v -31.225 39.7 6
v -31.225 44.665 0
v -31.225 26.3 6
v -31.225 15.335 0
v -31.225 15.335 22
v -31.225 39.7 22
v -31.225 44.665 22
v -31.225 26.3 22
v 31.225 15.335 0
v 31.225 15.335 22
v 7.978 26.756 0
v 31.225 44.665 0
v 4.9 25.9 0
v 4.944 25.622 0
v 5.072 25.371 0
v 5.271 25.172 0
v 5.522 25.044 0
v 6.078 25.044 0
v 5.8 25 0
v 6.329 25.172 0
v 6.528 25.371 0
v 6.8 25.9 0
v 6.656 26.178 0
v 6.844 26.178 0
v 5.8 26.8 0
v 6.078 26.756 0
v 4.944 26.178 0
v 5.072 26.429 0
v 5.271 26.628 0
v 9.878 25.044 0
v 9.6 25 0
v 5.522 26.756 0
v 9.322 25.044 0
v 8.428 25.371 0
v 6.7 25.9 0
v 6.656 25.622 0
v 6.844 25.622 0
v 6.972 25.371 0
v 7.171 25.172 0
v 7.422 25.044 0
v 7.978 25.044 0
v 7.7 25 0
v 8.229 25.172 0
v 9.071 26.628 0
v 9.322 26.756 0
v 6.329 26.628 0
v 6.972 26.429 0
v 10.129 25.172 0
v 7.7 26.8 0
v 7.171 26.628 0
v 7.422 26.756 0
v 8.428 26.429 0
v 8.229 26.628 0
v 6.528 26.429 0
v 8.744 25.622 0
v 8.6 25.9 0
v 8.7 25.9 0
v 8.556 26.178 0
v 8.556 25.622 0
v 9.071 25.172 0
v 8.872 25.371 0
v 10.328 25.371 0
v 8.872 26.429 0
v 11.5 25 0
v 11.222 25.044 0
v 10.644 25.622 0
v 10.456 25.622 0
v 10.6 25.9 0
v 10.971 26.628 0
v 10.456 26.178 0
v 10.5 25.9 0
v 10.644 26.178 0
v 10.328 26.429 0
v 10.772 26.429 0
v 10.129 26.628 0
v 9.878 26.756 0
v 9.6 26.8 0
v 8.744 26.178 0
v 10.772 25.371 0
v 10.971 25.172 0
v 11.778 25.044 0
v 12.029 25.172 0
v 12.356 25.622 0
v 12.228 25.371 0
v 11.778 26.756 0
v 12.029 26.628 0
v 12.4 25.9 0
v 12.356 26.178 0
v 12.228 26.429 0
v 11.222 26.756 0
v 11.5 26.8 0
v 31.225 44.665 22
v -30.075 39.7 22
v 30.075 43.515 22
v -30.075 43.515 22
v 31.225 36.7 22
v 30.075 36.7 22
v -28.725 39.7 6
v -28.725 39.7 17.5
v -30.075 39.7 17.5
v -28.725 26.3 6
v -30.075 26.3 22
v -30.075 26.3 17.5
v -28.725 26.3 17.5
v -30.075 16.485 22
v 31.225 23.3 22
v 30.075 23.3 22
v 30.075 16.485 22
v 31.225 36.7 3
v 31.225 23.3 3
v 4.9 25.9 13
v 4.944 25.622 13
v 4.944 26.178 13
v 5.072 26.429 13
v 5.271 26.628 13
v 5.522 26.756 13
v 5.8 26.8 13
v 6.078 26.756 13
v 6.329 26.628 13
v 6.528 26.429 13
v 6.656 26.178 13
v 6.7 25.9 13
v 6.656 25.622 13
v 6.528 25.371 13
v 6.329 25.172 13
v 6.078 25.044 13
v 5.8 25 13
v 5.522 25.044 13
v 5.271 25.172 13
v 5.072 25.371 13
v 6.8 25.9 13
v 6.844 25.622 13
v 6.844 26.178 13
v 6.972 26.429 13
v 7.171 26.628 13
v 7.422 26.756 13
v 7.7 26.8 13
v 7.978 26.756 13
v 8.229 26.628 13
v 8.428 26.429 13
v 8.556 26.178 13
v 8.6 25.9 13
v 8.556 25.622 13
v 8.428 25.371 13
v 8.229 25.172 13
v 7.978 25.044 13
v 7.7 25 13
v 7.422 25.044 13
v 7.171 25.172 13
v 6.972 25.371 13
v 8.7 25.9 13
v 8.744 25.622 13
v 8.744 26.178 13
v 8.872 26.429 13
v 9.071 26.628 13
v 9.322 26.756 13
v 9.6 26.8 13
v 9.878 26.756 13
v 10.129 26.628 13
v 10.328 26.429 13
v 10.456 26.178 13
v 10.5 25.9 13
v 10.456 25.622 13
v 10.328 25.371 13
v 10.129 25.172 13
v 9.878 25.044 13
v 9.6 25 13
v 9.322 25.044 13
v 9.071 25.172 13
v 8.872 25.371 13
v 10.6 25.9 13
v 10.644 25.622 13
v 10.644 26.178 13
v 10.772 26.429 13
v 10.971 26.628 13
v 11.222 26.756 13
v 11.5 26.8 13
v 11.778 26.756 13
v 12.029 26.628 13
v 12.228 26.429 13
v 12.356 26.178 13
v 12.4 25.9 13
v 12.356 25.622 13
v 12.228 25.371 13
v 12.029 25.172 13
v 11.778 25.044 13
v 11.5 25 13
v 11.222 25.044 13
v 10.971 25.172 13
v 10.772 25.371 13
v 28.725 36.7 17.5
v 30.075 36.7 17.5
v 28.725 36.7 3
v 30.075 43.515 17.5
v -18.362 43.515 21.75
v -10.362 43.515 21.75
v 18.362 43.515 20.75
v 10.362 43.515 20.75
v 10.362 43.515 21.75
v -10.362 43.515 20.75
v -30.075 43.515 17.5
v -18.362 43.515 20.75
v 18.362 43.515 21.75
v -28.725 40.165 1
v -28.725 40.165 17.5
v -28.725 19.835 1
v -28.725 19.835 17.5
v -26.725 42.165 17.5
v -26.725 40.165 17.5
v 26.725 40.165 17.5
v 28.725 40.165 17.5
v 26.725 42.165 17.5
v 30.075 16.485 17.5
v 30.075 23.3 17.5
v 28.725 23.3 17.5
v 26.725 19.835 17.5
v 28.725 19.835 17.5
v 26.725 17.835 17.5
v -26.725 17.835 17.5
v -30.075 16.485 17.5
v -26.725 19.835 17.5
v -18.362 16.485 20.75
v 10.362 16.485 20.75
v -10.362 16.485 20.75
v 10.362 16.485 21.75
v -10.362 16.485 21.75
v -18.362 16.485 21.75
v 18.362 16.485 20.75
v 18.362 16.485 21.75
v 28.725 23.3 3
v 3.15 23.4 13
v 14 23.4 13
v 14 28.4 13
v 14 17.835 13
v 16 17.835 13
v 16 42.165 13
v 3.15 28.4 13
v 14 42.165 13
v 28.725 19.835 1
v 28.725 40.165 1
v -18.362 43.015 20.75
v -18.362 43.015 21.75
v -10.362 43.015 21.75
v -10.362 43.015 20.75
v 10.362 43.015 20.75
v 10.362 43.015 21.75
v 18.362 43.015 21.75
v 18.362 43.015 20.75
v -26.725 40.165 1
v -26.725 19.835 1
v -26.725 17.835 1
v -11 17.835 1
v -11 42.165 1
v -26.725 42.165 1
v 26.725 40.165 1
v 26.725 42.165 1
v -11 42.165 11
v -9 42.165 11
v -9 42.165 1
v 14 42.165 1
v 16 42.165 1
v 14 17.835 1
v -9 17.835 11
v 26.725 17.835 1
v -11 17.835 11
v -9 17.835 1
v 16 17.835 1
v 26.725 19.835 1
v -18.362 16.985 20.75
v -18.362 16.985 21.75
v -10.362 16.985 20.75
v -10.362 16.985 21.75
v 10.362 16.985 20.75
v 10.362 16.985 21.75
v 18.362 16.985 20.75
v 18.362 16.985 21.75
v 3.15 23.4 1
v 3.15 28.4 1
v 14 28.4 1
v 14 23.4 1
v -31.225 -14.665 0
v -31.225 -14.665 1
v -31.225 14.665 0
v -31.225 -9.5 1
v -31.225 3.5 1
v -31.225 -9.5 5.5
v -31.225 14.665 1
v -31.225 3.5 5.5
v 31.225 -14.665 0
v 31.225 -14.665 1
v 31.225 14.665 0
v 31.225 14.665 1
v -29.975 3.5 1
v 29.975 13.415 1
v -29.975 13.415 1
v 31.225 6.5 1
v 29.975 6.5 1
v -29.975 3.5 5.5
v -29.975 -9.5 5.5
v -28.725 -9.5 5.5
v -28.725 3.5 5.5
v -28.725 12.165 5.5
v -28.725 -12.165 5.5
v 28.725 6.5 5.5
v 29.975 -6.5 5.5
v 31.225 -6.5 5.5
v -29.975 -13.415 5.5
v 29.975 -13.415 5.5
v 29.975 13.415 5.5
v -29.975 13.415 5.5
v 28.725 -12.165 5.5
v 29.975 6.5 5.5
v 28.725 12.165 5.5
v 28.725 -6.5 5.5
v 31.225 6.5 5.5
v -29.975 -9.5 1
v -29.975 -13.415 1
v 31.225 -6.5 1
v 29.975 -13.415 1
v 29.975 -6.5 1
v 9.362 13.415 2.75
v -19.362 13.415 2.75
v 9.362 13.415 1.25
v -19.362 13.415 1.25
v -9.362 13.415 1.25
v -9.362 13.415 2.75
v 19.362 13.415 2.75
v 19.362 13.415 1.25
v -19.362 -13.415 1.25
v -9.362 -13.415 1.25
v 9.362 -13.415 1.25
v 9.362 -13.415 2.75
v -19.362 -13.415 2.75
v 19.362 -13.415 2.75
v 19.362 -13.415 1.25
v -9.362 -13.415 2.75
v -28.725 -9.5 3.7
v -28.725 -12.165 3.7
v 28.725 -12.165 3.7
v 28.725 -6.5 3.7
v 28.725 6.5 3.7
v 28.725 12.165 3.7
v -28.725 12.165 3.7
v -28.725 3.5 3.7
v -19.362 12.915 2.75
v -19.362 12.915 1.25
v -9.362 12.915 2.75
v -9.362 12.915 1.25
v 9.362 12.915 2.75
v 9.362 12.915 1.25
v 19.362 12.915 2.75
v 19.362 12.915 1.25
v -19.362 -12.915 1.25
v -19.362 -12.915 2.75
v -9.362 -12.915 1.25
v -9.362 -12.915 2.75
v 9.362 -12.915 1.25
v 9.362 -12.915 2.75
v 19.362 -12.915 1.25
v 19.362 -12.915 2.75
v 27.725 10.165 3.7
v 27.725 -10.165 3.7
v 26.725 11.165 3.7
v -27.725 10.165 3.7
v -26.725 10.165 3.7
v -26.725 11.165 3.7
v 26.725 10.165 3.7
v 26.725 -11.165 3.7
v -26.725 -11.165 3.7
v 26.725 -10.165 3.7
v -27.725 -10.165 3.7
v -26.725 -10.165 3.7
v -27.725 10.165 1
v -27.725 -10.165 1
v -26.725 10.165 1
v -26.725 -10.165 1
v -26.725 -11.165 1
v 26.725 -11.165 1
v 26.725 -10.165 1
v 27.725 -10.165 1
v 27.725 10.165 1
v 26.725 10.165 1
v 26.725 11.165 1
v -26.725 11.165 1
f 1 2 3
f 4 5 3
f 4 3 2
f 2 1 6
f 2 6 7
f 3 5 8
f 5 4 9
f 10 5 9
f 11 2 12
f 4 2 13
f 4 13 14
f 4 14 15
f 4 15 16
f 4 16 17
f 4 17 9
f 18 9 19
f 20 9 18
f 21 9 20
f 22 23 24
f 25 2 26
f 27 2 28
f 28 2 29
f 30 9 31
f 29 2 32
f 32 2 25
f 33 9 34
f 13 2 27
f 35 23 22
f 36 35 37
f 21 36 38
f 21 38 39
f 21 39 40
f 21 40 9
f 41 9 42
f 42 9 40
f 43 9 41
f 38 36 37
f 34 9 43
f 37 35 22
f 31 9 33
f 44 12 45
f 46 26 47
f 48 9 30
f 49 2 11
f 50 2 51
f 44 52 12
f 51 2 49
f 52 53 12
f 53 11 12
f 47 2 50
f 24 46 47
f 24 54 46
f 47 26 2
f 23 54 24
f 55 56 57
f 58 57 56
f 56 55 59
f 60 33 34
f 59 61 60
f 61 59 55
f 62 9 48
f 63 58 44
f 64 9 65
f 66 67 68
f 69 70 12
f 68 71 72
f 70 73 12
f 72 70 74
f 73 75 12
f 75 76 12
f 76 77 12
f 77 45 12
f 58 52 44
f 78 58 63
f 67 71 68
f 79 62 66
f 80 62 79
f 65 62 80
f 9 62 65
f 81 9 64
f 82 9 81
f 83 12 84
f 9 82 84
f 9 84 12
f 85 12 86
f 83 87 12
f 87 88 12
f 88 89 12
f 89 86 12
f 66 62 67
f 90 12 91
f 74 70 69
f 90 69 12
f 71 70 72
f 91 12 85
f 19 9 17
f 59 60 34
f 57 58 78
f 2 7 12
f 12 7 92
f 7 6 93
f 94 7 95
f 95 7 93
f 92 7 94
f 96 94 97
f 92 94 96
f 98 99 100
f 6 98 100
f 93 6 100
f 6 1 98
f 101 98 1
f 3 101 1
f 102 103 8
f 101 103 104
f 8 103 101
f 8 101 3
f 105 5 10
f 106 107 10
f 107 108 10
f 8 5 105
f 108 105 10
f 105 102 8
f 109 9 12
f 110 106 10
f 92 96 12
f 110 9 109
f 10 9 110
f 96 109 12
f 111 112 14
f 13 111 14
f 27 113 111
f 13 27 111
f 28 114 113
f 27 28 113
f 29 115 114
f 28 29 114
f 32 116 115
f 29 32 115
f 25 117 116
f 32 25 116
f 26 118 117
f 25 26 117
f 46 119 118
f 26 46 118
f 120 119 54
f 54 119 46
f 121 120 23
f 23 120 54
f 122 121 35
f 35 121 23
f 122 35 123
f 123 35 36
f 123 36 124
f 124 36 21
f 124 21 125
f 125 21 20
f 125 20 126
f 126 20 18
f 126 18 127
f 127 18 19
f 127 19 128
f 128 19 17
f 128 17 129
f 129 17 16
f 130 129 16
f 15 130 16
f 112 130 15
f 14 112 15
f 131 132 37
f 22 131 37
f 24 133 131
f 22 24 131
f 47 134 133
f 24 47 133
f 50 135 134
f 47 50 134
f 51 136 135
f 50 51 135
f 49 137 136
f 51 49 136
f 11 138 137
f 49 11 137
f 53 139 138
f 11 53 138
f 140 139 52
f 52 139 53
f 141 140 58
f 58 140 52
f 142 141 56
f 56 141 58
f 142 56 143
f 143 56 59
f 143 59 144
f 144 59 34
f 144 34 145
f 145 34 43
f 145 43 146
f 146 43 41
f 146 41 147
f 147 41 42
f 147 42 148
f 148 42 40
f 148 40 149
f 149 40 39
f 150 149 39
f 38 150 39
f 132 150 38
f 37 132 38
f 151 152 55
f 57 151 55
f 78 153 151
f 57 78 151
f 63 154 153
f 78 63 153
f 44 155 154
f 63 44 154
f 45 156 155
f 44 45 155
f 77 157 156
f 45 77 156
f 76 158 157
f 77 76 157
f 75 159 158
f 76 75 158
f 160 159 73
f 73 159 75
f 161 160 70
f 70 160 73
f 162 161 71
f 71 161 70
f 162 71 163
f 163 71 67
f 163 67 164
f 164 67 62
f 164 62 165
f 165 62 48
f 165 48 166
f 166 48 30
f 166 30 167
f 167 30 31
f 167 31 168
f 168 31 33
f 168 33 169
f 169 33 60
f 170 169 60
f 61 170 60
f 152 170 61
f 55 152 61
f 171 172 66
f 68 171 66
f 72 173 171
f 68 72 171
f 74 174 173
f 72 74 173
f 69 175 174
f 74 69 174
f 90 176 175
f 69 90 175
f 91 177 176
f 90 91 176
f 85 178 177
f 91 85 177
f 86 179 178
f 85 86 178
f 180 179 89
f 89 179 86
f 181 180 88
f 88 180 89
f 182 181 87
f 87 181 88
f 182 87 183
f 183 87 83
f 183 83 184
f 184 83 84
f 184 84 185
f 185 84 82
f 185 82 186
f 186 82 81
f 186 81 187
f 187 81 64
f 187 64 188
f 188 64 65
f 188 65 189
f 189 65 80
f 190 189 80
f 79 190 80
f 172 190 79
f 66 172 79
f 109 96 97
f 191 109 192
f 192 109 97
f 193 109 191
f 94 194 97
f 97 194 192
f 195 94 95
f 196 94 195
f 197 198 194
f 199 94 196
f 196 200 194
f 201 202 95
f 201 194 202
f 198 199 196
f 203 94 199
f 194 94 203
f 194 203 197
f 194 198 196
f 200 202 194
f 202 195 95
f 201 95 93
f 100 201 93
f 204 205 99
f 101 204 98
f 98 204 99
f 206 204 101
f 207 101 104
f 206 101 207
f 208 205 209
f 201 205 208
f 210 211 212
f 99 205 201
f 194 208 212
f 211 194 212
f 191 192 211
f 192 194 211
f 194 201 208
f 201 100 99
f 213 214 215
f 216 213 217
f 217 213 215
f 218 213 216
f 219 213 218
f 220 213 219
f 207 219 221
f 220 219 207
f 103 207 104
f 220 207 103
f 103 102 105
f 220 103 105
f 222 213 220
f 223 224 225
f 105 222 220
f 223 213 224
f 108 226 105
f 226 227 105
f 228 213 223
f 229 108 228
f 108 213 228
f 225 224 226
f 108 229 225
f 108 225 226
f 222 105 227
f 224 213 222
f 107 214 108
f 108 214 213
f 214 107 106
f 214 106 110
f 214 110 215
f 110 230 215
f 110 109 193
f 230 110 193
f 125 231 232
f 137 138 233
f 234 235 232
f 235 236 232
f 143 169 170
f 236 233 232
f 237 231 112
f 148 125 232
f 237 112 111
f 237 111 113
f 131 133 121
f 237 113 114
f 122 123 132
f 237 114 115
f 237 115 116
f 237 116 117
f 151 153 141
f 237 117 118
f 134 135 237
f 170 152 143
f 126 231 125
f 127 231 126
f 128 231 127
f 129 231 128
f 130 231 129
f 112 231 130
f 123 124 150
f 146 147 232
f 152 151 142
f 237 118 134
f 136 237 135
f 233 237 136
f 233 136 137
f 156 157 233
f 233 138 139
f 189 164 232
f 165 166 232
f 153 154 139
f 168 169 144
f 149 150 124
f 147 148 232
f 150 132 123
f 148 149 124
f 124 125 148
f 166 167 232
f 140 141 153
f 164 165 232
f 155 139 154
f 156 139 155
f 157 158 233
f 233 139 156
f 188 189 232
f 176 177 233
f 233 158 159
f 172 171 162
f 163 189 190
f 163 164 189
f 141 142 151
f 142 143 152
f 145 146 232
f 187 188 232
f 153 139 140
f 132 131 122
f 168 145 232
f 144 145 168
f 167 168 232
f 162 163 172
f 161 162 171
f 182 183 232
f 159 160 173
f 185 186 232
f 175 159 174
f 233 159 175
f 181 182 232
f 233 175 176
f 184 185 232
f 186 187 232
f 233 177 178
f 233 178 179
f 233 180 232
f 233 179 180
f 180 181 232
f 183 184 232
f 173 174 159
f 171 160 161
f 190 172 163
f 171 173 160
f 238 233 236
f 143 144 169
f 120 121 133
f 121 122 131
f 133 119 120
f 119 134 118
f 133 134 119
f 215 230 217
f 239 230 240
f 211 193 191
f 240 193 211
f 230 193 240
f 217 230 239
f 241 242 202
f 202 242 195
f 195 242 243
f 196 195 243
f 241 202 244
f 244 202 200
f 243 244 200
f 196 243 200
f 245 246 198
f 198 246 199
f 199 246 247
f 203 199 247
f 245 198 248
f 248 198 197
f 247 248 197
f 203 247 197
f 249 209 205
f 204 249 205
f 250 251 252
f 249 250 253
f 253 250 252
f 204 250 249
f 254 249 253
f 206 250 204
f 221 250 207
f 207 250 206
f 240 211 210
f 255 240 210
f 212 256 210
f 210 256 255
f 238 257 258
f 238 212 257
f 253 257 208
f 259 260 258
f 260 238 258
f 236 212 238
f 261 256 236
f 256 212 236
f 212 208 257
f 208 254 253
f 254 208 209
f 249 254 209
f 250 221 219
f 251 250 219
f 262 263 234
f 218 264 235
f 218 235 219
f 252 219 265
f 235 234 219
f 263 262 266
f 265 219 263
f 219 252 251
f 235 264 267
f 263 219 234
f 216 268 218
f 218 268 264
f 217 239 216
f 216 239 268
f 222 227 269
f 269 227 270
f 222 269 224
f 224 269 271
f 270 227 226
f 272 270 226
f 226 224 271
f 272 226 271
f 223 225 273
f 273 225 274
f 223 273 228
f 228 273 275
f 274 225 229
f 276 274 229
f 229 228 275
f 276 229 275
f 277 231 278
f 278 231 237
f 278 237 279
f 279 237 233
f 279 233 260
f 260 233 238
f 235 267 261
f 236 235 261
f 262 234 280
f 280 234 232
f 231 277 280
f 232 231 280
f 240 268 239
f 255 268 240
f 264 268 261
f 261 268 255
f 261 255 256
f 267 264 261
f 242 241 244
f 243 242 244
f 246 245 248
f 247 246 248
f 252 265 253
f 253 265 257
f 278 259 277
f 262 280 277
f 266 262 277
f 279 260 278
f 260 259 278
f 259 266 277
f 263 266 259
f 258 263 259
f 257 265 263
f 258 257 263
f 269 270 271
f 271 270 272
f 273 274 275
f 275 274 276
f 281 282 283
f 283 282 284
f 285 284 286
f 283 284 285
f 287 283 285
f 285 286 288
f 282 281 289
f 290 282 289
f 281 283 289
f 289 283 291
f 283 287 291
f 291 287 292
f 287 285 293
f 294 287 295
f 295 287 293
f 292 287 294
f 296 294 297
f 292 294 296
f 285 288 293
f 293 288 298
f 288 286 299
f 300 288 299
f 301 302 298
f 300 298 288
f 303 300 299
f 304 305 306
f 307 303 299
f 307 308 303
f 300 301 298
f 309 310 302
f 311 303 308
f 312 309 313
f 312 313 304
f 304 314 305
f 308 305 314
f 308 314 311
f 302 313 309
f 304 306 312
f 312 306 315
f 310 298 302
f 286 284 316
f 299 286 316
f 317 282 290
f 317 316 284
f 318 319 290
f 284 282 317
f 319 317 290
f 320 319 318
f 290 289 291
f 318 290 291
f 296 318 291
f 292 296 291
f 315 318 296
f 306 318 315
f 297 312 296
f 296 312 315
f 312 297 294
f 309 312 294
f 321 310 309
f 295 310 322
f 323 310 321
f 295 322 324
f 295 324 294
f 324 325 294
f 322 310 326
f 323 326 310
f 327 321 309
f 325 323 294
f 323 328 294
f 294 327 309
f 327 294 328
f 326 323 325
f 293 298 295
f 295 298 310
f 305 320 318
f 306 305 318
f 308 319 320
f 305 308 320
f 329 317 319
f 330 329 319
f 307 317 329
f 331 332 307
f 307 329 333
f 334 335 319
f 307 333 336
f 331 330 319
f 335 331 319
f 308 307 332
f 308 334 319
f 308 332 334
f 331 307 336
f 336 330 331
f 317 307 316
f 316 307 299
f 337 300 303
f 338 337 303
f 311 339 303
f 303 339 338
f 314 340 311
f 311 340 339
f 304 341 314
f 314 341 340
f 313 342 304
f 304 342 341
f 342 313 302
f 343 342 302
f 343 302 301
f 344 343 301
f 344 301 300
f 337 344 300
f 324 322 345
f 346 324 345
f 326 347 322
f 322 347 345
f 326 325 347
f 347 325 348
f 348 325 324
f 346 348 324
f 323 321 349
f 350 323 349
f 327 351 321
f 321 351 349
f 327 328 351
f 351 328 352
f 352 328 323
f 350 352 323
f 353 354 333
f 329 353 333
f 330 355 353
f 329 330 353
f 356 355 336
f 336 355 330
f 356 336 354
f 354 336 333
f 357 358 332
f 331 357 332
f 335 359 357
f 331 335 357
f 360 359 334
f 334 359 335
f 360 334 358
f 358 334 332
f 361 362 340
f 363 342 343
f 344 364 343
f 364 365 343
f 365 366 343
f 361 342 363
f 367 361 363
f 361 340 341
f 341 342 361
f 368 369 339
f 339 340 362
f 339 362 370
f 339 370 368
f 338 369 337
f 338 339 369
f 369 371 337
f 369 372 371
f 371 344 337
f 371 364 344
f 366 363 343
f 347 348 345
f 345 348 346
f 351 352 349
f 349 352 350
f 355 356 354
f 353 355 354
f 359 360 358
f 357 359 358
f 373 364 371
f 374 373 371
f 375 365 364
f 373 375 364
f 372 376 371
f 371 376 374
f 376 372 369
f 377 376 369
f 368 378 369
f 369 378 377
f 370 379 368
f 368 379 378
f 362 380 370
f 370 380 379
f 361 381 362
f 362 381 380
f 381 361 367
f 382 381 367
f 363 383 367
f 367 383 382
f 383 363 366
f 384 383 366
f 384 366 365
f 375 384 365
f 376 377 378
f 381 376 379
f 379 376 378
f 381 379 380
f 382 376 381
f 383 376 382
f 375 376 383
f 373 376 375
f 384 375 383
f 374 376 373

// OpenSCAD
/*
 * case.scad -- case for the guiderport hardware
 *
 * (c) 2015 Prof Dr Andreas Mueller, Hochschule Rapperswil
 */

l = 57.15 + 0.3;
w = 24.13 + 0.2;
h = 22;
wall = 2.5;
L = l + 2 * wall;
W = w + 2 * wall;
H = 5;
s = 4.5;
board = 1.8;

module	bottom() {
	difference() {
		union() {
			translate([0, 0, 0.5])
				cube([L, W, 1], center = true);
			translate([0, 0, (s + 1) / 2])
				cube([L - wall, W - wall, s + 1], center = true);
		}
		union() { 
			translate([0, 0, (s + 1) / 2 + 1 + s - board])
				cube([l, w, s + 1], center = true);
			translate([0, 0, (s + 1) / 2 + 1])
				cube([l - 2, w - 4, s + 1], center = true);
			translate([0, 0, (s + 1) / 2 + 1])
				cube([l - 4, w - 2, s + 1], center = true);

			translate([-l / 4, -(w + wall)/2, 2])
				cube([10, 0.8, 1.5], center = true); 
			translate([+l / 4, -(w + wall)/2, 2])
				cube([10, 0.8, 1.5], center = true); 
			translate([-l / 4, (w + wall)/2, 2])
				cube([10, 0.8, 1.5], center = true); 
			translate([+l / 4, (w + wall)/2, 2])
				cube([10, 0.8, 1.5], center = true);
		}
	}
    // for USB
	translate([-l / 2 - wall / 2, -3, (s + 1) / 2])
		cube([wall, 13, s + 1], center = true);
   // for autoguide jack
	translate([l / 2 + wall / 2, 0, (s + 1) / 2])
		cube([wall, 13, s + 1], center = true);
}

module	top() {
	difference() {
		union() {
			translate([0, 0, h / 2])
				cube([L, W, h], center = true);
		}
		union() {
			translate([0, 0, h / 2 - 1])
				cube([l, w - 4, h], center = true);
			translate([0, 0, h / 2 - 1])
				cube([l - 4, w, h], center = true);

			translate([0, 0, -5 + s])
				cube([L - wall + 0.2, W - wall + 0.2, 10], center = true);
			// opening for USB
			translate([-L / 2, -3, 5])
				cube([10, 13.4, 18 + 4], center = true);
			// opening for autoguide jack
			translate([L / 2, 0, 7])
				cube([10, 13.4, 20 + 4], center = true);
		}
	}
	translate([-l / 4, -(w + wall)/2, 0.75])
		cube([8, 0.8, 1], center = true); 
	translate([+l / 4, -(w + wall)/2, 0.75])
		cube([8, 0.8, 1], center = true); 
	translate([-l / 4, (w + wall)/2, 0.75])
		cube([8, 0.8, 1], center = true); 
	translate([+l / 4, (w + wall)/2, 0.75])
		cube([8, 0.8, 1], center = true);

	// reinforcement bars in ceiling
	translate([-10, 0, h - 5.5])
		cube([2, W, 11], center = true);	
	translate([15, 0, h - 6.5])
		cube([2, W, 13], center = true);

	// holder for 
	translate([5.8 + 1.5 * 1.9, 4.1, h - 6.5])
		cube([11, 5, 13], center = true);
}

translate([0, 30, h])
	rotate([180, 0, 0])
		difference () {
			top();
			union() {
				translate([5.8 + 0 * 1.9, 4.1, h - 10])
					cylinder(h = 20, r = 0.9, center = true, $fn = 20);
				translate([5.8 + 1 * 1.9, 4.1, h - 10])
					cylinder(h = 20, r = 0.9, center = true, $fn = 20);
				translate([5.8 + 2 * 1.9, 4.1, h - 10])
					cylinder(h = 20, r = 0.9, center = true, $fn = 20);
				translate([5.8 + 3 * 1.9, 4.1, h - 10])
					cylinder(h = 20, r = 0.9, center = true, $fn = 20);
			}
		}

bottom();
